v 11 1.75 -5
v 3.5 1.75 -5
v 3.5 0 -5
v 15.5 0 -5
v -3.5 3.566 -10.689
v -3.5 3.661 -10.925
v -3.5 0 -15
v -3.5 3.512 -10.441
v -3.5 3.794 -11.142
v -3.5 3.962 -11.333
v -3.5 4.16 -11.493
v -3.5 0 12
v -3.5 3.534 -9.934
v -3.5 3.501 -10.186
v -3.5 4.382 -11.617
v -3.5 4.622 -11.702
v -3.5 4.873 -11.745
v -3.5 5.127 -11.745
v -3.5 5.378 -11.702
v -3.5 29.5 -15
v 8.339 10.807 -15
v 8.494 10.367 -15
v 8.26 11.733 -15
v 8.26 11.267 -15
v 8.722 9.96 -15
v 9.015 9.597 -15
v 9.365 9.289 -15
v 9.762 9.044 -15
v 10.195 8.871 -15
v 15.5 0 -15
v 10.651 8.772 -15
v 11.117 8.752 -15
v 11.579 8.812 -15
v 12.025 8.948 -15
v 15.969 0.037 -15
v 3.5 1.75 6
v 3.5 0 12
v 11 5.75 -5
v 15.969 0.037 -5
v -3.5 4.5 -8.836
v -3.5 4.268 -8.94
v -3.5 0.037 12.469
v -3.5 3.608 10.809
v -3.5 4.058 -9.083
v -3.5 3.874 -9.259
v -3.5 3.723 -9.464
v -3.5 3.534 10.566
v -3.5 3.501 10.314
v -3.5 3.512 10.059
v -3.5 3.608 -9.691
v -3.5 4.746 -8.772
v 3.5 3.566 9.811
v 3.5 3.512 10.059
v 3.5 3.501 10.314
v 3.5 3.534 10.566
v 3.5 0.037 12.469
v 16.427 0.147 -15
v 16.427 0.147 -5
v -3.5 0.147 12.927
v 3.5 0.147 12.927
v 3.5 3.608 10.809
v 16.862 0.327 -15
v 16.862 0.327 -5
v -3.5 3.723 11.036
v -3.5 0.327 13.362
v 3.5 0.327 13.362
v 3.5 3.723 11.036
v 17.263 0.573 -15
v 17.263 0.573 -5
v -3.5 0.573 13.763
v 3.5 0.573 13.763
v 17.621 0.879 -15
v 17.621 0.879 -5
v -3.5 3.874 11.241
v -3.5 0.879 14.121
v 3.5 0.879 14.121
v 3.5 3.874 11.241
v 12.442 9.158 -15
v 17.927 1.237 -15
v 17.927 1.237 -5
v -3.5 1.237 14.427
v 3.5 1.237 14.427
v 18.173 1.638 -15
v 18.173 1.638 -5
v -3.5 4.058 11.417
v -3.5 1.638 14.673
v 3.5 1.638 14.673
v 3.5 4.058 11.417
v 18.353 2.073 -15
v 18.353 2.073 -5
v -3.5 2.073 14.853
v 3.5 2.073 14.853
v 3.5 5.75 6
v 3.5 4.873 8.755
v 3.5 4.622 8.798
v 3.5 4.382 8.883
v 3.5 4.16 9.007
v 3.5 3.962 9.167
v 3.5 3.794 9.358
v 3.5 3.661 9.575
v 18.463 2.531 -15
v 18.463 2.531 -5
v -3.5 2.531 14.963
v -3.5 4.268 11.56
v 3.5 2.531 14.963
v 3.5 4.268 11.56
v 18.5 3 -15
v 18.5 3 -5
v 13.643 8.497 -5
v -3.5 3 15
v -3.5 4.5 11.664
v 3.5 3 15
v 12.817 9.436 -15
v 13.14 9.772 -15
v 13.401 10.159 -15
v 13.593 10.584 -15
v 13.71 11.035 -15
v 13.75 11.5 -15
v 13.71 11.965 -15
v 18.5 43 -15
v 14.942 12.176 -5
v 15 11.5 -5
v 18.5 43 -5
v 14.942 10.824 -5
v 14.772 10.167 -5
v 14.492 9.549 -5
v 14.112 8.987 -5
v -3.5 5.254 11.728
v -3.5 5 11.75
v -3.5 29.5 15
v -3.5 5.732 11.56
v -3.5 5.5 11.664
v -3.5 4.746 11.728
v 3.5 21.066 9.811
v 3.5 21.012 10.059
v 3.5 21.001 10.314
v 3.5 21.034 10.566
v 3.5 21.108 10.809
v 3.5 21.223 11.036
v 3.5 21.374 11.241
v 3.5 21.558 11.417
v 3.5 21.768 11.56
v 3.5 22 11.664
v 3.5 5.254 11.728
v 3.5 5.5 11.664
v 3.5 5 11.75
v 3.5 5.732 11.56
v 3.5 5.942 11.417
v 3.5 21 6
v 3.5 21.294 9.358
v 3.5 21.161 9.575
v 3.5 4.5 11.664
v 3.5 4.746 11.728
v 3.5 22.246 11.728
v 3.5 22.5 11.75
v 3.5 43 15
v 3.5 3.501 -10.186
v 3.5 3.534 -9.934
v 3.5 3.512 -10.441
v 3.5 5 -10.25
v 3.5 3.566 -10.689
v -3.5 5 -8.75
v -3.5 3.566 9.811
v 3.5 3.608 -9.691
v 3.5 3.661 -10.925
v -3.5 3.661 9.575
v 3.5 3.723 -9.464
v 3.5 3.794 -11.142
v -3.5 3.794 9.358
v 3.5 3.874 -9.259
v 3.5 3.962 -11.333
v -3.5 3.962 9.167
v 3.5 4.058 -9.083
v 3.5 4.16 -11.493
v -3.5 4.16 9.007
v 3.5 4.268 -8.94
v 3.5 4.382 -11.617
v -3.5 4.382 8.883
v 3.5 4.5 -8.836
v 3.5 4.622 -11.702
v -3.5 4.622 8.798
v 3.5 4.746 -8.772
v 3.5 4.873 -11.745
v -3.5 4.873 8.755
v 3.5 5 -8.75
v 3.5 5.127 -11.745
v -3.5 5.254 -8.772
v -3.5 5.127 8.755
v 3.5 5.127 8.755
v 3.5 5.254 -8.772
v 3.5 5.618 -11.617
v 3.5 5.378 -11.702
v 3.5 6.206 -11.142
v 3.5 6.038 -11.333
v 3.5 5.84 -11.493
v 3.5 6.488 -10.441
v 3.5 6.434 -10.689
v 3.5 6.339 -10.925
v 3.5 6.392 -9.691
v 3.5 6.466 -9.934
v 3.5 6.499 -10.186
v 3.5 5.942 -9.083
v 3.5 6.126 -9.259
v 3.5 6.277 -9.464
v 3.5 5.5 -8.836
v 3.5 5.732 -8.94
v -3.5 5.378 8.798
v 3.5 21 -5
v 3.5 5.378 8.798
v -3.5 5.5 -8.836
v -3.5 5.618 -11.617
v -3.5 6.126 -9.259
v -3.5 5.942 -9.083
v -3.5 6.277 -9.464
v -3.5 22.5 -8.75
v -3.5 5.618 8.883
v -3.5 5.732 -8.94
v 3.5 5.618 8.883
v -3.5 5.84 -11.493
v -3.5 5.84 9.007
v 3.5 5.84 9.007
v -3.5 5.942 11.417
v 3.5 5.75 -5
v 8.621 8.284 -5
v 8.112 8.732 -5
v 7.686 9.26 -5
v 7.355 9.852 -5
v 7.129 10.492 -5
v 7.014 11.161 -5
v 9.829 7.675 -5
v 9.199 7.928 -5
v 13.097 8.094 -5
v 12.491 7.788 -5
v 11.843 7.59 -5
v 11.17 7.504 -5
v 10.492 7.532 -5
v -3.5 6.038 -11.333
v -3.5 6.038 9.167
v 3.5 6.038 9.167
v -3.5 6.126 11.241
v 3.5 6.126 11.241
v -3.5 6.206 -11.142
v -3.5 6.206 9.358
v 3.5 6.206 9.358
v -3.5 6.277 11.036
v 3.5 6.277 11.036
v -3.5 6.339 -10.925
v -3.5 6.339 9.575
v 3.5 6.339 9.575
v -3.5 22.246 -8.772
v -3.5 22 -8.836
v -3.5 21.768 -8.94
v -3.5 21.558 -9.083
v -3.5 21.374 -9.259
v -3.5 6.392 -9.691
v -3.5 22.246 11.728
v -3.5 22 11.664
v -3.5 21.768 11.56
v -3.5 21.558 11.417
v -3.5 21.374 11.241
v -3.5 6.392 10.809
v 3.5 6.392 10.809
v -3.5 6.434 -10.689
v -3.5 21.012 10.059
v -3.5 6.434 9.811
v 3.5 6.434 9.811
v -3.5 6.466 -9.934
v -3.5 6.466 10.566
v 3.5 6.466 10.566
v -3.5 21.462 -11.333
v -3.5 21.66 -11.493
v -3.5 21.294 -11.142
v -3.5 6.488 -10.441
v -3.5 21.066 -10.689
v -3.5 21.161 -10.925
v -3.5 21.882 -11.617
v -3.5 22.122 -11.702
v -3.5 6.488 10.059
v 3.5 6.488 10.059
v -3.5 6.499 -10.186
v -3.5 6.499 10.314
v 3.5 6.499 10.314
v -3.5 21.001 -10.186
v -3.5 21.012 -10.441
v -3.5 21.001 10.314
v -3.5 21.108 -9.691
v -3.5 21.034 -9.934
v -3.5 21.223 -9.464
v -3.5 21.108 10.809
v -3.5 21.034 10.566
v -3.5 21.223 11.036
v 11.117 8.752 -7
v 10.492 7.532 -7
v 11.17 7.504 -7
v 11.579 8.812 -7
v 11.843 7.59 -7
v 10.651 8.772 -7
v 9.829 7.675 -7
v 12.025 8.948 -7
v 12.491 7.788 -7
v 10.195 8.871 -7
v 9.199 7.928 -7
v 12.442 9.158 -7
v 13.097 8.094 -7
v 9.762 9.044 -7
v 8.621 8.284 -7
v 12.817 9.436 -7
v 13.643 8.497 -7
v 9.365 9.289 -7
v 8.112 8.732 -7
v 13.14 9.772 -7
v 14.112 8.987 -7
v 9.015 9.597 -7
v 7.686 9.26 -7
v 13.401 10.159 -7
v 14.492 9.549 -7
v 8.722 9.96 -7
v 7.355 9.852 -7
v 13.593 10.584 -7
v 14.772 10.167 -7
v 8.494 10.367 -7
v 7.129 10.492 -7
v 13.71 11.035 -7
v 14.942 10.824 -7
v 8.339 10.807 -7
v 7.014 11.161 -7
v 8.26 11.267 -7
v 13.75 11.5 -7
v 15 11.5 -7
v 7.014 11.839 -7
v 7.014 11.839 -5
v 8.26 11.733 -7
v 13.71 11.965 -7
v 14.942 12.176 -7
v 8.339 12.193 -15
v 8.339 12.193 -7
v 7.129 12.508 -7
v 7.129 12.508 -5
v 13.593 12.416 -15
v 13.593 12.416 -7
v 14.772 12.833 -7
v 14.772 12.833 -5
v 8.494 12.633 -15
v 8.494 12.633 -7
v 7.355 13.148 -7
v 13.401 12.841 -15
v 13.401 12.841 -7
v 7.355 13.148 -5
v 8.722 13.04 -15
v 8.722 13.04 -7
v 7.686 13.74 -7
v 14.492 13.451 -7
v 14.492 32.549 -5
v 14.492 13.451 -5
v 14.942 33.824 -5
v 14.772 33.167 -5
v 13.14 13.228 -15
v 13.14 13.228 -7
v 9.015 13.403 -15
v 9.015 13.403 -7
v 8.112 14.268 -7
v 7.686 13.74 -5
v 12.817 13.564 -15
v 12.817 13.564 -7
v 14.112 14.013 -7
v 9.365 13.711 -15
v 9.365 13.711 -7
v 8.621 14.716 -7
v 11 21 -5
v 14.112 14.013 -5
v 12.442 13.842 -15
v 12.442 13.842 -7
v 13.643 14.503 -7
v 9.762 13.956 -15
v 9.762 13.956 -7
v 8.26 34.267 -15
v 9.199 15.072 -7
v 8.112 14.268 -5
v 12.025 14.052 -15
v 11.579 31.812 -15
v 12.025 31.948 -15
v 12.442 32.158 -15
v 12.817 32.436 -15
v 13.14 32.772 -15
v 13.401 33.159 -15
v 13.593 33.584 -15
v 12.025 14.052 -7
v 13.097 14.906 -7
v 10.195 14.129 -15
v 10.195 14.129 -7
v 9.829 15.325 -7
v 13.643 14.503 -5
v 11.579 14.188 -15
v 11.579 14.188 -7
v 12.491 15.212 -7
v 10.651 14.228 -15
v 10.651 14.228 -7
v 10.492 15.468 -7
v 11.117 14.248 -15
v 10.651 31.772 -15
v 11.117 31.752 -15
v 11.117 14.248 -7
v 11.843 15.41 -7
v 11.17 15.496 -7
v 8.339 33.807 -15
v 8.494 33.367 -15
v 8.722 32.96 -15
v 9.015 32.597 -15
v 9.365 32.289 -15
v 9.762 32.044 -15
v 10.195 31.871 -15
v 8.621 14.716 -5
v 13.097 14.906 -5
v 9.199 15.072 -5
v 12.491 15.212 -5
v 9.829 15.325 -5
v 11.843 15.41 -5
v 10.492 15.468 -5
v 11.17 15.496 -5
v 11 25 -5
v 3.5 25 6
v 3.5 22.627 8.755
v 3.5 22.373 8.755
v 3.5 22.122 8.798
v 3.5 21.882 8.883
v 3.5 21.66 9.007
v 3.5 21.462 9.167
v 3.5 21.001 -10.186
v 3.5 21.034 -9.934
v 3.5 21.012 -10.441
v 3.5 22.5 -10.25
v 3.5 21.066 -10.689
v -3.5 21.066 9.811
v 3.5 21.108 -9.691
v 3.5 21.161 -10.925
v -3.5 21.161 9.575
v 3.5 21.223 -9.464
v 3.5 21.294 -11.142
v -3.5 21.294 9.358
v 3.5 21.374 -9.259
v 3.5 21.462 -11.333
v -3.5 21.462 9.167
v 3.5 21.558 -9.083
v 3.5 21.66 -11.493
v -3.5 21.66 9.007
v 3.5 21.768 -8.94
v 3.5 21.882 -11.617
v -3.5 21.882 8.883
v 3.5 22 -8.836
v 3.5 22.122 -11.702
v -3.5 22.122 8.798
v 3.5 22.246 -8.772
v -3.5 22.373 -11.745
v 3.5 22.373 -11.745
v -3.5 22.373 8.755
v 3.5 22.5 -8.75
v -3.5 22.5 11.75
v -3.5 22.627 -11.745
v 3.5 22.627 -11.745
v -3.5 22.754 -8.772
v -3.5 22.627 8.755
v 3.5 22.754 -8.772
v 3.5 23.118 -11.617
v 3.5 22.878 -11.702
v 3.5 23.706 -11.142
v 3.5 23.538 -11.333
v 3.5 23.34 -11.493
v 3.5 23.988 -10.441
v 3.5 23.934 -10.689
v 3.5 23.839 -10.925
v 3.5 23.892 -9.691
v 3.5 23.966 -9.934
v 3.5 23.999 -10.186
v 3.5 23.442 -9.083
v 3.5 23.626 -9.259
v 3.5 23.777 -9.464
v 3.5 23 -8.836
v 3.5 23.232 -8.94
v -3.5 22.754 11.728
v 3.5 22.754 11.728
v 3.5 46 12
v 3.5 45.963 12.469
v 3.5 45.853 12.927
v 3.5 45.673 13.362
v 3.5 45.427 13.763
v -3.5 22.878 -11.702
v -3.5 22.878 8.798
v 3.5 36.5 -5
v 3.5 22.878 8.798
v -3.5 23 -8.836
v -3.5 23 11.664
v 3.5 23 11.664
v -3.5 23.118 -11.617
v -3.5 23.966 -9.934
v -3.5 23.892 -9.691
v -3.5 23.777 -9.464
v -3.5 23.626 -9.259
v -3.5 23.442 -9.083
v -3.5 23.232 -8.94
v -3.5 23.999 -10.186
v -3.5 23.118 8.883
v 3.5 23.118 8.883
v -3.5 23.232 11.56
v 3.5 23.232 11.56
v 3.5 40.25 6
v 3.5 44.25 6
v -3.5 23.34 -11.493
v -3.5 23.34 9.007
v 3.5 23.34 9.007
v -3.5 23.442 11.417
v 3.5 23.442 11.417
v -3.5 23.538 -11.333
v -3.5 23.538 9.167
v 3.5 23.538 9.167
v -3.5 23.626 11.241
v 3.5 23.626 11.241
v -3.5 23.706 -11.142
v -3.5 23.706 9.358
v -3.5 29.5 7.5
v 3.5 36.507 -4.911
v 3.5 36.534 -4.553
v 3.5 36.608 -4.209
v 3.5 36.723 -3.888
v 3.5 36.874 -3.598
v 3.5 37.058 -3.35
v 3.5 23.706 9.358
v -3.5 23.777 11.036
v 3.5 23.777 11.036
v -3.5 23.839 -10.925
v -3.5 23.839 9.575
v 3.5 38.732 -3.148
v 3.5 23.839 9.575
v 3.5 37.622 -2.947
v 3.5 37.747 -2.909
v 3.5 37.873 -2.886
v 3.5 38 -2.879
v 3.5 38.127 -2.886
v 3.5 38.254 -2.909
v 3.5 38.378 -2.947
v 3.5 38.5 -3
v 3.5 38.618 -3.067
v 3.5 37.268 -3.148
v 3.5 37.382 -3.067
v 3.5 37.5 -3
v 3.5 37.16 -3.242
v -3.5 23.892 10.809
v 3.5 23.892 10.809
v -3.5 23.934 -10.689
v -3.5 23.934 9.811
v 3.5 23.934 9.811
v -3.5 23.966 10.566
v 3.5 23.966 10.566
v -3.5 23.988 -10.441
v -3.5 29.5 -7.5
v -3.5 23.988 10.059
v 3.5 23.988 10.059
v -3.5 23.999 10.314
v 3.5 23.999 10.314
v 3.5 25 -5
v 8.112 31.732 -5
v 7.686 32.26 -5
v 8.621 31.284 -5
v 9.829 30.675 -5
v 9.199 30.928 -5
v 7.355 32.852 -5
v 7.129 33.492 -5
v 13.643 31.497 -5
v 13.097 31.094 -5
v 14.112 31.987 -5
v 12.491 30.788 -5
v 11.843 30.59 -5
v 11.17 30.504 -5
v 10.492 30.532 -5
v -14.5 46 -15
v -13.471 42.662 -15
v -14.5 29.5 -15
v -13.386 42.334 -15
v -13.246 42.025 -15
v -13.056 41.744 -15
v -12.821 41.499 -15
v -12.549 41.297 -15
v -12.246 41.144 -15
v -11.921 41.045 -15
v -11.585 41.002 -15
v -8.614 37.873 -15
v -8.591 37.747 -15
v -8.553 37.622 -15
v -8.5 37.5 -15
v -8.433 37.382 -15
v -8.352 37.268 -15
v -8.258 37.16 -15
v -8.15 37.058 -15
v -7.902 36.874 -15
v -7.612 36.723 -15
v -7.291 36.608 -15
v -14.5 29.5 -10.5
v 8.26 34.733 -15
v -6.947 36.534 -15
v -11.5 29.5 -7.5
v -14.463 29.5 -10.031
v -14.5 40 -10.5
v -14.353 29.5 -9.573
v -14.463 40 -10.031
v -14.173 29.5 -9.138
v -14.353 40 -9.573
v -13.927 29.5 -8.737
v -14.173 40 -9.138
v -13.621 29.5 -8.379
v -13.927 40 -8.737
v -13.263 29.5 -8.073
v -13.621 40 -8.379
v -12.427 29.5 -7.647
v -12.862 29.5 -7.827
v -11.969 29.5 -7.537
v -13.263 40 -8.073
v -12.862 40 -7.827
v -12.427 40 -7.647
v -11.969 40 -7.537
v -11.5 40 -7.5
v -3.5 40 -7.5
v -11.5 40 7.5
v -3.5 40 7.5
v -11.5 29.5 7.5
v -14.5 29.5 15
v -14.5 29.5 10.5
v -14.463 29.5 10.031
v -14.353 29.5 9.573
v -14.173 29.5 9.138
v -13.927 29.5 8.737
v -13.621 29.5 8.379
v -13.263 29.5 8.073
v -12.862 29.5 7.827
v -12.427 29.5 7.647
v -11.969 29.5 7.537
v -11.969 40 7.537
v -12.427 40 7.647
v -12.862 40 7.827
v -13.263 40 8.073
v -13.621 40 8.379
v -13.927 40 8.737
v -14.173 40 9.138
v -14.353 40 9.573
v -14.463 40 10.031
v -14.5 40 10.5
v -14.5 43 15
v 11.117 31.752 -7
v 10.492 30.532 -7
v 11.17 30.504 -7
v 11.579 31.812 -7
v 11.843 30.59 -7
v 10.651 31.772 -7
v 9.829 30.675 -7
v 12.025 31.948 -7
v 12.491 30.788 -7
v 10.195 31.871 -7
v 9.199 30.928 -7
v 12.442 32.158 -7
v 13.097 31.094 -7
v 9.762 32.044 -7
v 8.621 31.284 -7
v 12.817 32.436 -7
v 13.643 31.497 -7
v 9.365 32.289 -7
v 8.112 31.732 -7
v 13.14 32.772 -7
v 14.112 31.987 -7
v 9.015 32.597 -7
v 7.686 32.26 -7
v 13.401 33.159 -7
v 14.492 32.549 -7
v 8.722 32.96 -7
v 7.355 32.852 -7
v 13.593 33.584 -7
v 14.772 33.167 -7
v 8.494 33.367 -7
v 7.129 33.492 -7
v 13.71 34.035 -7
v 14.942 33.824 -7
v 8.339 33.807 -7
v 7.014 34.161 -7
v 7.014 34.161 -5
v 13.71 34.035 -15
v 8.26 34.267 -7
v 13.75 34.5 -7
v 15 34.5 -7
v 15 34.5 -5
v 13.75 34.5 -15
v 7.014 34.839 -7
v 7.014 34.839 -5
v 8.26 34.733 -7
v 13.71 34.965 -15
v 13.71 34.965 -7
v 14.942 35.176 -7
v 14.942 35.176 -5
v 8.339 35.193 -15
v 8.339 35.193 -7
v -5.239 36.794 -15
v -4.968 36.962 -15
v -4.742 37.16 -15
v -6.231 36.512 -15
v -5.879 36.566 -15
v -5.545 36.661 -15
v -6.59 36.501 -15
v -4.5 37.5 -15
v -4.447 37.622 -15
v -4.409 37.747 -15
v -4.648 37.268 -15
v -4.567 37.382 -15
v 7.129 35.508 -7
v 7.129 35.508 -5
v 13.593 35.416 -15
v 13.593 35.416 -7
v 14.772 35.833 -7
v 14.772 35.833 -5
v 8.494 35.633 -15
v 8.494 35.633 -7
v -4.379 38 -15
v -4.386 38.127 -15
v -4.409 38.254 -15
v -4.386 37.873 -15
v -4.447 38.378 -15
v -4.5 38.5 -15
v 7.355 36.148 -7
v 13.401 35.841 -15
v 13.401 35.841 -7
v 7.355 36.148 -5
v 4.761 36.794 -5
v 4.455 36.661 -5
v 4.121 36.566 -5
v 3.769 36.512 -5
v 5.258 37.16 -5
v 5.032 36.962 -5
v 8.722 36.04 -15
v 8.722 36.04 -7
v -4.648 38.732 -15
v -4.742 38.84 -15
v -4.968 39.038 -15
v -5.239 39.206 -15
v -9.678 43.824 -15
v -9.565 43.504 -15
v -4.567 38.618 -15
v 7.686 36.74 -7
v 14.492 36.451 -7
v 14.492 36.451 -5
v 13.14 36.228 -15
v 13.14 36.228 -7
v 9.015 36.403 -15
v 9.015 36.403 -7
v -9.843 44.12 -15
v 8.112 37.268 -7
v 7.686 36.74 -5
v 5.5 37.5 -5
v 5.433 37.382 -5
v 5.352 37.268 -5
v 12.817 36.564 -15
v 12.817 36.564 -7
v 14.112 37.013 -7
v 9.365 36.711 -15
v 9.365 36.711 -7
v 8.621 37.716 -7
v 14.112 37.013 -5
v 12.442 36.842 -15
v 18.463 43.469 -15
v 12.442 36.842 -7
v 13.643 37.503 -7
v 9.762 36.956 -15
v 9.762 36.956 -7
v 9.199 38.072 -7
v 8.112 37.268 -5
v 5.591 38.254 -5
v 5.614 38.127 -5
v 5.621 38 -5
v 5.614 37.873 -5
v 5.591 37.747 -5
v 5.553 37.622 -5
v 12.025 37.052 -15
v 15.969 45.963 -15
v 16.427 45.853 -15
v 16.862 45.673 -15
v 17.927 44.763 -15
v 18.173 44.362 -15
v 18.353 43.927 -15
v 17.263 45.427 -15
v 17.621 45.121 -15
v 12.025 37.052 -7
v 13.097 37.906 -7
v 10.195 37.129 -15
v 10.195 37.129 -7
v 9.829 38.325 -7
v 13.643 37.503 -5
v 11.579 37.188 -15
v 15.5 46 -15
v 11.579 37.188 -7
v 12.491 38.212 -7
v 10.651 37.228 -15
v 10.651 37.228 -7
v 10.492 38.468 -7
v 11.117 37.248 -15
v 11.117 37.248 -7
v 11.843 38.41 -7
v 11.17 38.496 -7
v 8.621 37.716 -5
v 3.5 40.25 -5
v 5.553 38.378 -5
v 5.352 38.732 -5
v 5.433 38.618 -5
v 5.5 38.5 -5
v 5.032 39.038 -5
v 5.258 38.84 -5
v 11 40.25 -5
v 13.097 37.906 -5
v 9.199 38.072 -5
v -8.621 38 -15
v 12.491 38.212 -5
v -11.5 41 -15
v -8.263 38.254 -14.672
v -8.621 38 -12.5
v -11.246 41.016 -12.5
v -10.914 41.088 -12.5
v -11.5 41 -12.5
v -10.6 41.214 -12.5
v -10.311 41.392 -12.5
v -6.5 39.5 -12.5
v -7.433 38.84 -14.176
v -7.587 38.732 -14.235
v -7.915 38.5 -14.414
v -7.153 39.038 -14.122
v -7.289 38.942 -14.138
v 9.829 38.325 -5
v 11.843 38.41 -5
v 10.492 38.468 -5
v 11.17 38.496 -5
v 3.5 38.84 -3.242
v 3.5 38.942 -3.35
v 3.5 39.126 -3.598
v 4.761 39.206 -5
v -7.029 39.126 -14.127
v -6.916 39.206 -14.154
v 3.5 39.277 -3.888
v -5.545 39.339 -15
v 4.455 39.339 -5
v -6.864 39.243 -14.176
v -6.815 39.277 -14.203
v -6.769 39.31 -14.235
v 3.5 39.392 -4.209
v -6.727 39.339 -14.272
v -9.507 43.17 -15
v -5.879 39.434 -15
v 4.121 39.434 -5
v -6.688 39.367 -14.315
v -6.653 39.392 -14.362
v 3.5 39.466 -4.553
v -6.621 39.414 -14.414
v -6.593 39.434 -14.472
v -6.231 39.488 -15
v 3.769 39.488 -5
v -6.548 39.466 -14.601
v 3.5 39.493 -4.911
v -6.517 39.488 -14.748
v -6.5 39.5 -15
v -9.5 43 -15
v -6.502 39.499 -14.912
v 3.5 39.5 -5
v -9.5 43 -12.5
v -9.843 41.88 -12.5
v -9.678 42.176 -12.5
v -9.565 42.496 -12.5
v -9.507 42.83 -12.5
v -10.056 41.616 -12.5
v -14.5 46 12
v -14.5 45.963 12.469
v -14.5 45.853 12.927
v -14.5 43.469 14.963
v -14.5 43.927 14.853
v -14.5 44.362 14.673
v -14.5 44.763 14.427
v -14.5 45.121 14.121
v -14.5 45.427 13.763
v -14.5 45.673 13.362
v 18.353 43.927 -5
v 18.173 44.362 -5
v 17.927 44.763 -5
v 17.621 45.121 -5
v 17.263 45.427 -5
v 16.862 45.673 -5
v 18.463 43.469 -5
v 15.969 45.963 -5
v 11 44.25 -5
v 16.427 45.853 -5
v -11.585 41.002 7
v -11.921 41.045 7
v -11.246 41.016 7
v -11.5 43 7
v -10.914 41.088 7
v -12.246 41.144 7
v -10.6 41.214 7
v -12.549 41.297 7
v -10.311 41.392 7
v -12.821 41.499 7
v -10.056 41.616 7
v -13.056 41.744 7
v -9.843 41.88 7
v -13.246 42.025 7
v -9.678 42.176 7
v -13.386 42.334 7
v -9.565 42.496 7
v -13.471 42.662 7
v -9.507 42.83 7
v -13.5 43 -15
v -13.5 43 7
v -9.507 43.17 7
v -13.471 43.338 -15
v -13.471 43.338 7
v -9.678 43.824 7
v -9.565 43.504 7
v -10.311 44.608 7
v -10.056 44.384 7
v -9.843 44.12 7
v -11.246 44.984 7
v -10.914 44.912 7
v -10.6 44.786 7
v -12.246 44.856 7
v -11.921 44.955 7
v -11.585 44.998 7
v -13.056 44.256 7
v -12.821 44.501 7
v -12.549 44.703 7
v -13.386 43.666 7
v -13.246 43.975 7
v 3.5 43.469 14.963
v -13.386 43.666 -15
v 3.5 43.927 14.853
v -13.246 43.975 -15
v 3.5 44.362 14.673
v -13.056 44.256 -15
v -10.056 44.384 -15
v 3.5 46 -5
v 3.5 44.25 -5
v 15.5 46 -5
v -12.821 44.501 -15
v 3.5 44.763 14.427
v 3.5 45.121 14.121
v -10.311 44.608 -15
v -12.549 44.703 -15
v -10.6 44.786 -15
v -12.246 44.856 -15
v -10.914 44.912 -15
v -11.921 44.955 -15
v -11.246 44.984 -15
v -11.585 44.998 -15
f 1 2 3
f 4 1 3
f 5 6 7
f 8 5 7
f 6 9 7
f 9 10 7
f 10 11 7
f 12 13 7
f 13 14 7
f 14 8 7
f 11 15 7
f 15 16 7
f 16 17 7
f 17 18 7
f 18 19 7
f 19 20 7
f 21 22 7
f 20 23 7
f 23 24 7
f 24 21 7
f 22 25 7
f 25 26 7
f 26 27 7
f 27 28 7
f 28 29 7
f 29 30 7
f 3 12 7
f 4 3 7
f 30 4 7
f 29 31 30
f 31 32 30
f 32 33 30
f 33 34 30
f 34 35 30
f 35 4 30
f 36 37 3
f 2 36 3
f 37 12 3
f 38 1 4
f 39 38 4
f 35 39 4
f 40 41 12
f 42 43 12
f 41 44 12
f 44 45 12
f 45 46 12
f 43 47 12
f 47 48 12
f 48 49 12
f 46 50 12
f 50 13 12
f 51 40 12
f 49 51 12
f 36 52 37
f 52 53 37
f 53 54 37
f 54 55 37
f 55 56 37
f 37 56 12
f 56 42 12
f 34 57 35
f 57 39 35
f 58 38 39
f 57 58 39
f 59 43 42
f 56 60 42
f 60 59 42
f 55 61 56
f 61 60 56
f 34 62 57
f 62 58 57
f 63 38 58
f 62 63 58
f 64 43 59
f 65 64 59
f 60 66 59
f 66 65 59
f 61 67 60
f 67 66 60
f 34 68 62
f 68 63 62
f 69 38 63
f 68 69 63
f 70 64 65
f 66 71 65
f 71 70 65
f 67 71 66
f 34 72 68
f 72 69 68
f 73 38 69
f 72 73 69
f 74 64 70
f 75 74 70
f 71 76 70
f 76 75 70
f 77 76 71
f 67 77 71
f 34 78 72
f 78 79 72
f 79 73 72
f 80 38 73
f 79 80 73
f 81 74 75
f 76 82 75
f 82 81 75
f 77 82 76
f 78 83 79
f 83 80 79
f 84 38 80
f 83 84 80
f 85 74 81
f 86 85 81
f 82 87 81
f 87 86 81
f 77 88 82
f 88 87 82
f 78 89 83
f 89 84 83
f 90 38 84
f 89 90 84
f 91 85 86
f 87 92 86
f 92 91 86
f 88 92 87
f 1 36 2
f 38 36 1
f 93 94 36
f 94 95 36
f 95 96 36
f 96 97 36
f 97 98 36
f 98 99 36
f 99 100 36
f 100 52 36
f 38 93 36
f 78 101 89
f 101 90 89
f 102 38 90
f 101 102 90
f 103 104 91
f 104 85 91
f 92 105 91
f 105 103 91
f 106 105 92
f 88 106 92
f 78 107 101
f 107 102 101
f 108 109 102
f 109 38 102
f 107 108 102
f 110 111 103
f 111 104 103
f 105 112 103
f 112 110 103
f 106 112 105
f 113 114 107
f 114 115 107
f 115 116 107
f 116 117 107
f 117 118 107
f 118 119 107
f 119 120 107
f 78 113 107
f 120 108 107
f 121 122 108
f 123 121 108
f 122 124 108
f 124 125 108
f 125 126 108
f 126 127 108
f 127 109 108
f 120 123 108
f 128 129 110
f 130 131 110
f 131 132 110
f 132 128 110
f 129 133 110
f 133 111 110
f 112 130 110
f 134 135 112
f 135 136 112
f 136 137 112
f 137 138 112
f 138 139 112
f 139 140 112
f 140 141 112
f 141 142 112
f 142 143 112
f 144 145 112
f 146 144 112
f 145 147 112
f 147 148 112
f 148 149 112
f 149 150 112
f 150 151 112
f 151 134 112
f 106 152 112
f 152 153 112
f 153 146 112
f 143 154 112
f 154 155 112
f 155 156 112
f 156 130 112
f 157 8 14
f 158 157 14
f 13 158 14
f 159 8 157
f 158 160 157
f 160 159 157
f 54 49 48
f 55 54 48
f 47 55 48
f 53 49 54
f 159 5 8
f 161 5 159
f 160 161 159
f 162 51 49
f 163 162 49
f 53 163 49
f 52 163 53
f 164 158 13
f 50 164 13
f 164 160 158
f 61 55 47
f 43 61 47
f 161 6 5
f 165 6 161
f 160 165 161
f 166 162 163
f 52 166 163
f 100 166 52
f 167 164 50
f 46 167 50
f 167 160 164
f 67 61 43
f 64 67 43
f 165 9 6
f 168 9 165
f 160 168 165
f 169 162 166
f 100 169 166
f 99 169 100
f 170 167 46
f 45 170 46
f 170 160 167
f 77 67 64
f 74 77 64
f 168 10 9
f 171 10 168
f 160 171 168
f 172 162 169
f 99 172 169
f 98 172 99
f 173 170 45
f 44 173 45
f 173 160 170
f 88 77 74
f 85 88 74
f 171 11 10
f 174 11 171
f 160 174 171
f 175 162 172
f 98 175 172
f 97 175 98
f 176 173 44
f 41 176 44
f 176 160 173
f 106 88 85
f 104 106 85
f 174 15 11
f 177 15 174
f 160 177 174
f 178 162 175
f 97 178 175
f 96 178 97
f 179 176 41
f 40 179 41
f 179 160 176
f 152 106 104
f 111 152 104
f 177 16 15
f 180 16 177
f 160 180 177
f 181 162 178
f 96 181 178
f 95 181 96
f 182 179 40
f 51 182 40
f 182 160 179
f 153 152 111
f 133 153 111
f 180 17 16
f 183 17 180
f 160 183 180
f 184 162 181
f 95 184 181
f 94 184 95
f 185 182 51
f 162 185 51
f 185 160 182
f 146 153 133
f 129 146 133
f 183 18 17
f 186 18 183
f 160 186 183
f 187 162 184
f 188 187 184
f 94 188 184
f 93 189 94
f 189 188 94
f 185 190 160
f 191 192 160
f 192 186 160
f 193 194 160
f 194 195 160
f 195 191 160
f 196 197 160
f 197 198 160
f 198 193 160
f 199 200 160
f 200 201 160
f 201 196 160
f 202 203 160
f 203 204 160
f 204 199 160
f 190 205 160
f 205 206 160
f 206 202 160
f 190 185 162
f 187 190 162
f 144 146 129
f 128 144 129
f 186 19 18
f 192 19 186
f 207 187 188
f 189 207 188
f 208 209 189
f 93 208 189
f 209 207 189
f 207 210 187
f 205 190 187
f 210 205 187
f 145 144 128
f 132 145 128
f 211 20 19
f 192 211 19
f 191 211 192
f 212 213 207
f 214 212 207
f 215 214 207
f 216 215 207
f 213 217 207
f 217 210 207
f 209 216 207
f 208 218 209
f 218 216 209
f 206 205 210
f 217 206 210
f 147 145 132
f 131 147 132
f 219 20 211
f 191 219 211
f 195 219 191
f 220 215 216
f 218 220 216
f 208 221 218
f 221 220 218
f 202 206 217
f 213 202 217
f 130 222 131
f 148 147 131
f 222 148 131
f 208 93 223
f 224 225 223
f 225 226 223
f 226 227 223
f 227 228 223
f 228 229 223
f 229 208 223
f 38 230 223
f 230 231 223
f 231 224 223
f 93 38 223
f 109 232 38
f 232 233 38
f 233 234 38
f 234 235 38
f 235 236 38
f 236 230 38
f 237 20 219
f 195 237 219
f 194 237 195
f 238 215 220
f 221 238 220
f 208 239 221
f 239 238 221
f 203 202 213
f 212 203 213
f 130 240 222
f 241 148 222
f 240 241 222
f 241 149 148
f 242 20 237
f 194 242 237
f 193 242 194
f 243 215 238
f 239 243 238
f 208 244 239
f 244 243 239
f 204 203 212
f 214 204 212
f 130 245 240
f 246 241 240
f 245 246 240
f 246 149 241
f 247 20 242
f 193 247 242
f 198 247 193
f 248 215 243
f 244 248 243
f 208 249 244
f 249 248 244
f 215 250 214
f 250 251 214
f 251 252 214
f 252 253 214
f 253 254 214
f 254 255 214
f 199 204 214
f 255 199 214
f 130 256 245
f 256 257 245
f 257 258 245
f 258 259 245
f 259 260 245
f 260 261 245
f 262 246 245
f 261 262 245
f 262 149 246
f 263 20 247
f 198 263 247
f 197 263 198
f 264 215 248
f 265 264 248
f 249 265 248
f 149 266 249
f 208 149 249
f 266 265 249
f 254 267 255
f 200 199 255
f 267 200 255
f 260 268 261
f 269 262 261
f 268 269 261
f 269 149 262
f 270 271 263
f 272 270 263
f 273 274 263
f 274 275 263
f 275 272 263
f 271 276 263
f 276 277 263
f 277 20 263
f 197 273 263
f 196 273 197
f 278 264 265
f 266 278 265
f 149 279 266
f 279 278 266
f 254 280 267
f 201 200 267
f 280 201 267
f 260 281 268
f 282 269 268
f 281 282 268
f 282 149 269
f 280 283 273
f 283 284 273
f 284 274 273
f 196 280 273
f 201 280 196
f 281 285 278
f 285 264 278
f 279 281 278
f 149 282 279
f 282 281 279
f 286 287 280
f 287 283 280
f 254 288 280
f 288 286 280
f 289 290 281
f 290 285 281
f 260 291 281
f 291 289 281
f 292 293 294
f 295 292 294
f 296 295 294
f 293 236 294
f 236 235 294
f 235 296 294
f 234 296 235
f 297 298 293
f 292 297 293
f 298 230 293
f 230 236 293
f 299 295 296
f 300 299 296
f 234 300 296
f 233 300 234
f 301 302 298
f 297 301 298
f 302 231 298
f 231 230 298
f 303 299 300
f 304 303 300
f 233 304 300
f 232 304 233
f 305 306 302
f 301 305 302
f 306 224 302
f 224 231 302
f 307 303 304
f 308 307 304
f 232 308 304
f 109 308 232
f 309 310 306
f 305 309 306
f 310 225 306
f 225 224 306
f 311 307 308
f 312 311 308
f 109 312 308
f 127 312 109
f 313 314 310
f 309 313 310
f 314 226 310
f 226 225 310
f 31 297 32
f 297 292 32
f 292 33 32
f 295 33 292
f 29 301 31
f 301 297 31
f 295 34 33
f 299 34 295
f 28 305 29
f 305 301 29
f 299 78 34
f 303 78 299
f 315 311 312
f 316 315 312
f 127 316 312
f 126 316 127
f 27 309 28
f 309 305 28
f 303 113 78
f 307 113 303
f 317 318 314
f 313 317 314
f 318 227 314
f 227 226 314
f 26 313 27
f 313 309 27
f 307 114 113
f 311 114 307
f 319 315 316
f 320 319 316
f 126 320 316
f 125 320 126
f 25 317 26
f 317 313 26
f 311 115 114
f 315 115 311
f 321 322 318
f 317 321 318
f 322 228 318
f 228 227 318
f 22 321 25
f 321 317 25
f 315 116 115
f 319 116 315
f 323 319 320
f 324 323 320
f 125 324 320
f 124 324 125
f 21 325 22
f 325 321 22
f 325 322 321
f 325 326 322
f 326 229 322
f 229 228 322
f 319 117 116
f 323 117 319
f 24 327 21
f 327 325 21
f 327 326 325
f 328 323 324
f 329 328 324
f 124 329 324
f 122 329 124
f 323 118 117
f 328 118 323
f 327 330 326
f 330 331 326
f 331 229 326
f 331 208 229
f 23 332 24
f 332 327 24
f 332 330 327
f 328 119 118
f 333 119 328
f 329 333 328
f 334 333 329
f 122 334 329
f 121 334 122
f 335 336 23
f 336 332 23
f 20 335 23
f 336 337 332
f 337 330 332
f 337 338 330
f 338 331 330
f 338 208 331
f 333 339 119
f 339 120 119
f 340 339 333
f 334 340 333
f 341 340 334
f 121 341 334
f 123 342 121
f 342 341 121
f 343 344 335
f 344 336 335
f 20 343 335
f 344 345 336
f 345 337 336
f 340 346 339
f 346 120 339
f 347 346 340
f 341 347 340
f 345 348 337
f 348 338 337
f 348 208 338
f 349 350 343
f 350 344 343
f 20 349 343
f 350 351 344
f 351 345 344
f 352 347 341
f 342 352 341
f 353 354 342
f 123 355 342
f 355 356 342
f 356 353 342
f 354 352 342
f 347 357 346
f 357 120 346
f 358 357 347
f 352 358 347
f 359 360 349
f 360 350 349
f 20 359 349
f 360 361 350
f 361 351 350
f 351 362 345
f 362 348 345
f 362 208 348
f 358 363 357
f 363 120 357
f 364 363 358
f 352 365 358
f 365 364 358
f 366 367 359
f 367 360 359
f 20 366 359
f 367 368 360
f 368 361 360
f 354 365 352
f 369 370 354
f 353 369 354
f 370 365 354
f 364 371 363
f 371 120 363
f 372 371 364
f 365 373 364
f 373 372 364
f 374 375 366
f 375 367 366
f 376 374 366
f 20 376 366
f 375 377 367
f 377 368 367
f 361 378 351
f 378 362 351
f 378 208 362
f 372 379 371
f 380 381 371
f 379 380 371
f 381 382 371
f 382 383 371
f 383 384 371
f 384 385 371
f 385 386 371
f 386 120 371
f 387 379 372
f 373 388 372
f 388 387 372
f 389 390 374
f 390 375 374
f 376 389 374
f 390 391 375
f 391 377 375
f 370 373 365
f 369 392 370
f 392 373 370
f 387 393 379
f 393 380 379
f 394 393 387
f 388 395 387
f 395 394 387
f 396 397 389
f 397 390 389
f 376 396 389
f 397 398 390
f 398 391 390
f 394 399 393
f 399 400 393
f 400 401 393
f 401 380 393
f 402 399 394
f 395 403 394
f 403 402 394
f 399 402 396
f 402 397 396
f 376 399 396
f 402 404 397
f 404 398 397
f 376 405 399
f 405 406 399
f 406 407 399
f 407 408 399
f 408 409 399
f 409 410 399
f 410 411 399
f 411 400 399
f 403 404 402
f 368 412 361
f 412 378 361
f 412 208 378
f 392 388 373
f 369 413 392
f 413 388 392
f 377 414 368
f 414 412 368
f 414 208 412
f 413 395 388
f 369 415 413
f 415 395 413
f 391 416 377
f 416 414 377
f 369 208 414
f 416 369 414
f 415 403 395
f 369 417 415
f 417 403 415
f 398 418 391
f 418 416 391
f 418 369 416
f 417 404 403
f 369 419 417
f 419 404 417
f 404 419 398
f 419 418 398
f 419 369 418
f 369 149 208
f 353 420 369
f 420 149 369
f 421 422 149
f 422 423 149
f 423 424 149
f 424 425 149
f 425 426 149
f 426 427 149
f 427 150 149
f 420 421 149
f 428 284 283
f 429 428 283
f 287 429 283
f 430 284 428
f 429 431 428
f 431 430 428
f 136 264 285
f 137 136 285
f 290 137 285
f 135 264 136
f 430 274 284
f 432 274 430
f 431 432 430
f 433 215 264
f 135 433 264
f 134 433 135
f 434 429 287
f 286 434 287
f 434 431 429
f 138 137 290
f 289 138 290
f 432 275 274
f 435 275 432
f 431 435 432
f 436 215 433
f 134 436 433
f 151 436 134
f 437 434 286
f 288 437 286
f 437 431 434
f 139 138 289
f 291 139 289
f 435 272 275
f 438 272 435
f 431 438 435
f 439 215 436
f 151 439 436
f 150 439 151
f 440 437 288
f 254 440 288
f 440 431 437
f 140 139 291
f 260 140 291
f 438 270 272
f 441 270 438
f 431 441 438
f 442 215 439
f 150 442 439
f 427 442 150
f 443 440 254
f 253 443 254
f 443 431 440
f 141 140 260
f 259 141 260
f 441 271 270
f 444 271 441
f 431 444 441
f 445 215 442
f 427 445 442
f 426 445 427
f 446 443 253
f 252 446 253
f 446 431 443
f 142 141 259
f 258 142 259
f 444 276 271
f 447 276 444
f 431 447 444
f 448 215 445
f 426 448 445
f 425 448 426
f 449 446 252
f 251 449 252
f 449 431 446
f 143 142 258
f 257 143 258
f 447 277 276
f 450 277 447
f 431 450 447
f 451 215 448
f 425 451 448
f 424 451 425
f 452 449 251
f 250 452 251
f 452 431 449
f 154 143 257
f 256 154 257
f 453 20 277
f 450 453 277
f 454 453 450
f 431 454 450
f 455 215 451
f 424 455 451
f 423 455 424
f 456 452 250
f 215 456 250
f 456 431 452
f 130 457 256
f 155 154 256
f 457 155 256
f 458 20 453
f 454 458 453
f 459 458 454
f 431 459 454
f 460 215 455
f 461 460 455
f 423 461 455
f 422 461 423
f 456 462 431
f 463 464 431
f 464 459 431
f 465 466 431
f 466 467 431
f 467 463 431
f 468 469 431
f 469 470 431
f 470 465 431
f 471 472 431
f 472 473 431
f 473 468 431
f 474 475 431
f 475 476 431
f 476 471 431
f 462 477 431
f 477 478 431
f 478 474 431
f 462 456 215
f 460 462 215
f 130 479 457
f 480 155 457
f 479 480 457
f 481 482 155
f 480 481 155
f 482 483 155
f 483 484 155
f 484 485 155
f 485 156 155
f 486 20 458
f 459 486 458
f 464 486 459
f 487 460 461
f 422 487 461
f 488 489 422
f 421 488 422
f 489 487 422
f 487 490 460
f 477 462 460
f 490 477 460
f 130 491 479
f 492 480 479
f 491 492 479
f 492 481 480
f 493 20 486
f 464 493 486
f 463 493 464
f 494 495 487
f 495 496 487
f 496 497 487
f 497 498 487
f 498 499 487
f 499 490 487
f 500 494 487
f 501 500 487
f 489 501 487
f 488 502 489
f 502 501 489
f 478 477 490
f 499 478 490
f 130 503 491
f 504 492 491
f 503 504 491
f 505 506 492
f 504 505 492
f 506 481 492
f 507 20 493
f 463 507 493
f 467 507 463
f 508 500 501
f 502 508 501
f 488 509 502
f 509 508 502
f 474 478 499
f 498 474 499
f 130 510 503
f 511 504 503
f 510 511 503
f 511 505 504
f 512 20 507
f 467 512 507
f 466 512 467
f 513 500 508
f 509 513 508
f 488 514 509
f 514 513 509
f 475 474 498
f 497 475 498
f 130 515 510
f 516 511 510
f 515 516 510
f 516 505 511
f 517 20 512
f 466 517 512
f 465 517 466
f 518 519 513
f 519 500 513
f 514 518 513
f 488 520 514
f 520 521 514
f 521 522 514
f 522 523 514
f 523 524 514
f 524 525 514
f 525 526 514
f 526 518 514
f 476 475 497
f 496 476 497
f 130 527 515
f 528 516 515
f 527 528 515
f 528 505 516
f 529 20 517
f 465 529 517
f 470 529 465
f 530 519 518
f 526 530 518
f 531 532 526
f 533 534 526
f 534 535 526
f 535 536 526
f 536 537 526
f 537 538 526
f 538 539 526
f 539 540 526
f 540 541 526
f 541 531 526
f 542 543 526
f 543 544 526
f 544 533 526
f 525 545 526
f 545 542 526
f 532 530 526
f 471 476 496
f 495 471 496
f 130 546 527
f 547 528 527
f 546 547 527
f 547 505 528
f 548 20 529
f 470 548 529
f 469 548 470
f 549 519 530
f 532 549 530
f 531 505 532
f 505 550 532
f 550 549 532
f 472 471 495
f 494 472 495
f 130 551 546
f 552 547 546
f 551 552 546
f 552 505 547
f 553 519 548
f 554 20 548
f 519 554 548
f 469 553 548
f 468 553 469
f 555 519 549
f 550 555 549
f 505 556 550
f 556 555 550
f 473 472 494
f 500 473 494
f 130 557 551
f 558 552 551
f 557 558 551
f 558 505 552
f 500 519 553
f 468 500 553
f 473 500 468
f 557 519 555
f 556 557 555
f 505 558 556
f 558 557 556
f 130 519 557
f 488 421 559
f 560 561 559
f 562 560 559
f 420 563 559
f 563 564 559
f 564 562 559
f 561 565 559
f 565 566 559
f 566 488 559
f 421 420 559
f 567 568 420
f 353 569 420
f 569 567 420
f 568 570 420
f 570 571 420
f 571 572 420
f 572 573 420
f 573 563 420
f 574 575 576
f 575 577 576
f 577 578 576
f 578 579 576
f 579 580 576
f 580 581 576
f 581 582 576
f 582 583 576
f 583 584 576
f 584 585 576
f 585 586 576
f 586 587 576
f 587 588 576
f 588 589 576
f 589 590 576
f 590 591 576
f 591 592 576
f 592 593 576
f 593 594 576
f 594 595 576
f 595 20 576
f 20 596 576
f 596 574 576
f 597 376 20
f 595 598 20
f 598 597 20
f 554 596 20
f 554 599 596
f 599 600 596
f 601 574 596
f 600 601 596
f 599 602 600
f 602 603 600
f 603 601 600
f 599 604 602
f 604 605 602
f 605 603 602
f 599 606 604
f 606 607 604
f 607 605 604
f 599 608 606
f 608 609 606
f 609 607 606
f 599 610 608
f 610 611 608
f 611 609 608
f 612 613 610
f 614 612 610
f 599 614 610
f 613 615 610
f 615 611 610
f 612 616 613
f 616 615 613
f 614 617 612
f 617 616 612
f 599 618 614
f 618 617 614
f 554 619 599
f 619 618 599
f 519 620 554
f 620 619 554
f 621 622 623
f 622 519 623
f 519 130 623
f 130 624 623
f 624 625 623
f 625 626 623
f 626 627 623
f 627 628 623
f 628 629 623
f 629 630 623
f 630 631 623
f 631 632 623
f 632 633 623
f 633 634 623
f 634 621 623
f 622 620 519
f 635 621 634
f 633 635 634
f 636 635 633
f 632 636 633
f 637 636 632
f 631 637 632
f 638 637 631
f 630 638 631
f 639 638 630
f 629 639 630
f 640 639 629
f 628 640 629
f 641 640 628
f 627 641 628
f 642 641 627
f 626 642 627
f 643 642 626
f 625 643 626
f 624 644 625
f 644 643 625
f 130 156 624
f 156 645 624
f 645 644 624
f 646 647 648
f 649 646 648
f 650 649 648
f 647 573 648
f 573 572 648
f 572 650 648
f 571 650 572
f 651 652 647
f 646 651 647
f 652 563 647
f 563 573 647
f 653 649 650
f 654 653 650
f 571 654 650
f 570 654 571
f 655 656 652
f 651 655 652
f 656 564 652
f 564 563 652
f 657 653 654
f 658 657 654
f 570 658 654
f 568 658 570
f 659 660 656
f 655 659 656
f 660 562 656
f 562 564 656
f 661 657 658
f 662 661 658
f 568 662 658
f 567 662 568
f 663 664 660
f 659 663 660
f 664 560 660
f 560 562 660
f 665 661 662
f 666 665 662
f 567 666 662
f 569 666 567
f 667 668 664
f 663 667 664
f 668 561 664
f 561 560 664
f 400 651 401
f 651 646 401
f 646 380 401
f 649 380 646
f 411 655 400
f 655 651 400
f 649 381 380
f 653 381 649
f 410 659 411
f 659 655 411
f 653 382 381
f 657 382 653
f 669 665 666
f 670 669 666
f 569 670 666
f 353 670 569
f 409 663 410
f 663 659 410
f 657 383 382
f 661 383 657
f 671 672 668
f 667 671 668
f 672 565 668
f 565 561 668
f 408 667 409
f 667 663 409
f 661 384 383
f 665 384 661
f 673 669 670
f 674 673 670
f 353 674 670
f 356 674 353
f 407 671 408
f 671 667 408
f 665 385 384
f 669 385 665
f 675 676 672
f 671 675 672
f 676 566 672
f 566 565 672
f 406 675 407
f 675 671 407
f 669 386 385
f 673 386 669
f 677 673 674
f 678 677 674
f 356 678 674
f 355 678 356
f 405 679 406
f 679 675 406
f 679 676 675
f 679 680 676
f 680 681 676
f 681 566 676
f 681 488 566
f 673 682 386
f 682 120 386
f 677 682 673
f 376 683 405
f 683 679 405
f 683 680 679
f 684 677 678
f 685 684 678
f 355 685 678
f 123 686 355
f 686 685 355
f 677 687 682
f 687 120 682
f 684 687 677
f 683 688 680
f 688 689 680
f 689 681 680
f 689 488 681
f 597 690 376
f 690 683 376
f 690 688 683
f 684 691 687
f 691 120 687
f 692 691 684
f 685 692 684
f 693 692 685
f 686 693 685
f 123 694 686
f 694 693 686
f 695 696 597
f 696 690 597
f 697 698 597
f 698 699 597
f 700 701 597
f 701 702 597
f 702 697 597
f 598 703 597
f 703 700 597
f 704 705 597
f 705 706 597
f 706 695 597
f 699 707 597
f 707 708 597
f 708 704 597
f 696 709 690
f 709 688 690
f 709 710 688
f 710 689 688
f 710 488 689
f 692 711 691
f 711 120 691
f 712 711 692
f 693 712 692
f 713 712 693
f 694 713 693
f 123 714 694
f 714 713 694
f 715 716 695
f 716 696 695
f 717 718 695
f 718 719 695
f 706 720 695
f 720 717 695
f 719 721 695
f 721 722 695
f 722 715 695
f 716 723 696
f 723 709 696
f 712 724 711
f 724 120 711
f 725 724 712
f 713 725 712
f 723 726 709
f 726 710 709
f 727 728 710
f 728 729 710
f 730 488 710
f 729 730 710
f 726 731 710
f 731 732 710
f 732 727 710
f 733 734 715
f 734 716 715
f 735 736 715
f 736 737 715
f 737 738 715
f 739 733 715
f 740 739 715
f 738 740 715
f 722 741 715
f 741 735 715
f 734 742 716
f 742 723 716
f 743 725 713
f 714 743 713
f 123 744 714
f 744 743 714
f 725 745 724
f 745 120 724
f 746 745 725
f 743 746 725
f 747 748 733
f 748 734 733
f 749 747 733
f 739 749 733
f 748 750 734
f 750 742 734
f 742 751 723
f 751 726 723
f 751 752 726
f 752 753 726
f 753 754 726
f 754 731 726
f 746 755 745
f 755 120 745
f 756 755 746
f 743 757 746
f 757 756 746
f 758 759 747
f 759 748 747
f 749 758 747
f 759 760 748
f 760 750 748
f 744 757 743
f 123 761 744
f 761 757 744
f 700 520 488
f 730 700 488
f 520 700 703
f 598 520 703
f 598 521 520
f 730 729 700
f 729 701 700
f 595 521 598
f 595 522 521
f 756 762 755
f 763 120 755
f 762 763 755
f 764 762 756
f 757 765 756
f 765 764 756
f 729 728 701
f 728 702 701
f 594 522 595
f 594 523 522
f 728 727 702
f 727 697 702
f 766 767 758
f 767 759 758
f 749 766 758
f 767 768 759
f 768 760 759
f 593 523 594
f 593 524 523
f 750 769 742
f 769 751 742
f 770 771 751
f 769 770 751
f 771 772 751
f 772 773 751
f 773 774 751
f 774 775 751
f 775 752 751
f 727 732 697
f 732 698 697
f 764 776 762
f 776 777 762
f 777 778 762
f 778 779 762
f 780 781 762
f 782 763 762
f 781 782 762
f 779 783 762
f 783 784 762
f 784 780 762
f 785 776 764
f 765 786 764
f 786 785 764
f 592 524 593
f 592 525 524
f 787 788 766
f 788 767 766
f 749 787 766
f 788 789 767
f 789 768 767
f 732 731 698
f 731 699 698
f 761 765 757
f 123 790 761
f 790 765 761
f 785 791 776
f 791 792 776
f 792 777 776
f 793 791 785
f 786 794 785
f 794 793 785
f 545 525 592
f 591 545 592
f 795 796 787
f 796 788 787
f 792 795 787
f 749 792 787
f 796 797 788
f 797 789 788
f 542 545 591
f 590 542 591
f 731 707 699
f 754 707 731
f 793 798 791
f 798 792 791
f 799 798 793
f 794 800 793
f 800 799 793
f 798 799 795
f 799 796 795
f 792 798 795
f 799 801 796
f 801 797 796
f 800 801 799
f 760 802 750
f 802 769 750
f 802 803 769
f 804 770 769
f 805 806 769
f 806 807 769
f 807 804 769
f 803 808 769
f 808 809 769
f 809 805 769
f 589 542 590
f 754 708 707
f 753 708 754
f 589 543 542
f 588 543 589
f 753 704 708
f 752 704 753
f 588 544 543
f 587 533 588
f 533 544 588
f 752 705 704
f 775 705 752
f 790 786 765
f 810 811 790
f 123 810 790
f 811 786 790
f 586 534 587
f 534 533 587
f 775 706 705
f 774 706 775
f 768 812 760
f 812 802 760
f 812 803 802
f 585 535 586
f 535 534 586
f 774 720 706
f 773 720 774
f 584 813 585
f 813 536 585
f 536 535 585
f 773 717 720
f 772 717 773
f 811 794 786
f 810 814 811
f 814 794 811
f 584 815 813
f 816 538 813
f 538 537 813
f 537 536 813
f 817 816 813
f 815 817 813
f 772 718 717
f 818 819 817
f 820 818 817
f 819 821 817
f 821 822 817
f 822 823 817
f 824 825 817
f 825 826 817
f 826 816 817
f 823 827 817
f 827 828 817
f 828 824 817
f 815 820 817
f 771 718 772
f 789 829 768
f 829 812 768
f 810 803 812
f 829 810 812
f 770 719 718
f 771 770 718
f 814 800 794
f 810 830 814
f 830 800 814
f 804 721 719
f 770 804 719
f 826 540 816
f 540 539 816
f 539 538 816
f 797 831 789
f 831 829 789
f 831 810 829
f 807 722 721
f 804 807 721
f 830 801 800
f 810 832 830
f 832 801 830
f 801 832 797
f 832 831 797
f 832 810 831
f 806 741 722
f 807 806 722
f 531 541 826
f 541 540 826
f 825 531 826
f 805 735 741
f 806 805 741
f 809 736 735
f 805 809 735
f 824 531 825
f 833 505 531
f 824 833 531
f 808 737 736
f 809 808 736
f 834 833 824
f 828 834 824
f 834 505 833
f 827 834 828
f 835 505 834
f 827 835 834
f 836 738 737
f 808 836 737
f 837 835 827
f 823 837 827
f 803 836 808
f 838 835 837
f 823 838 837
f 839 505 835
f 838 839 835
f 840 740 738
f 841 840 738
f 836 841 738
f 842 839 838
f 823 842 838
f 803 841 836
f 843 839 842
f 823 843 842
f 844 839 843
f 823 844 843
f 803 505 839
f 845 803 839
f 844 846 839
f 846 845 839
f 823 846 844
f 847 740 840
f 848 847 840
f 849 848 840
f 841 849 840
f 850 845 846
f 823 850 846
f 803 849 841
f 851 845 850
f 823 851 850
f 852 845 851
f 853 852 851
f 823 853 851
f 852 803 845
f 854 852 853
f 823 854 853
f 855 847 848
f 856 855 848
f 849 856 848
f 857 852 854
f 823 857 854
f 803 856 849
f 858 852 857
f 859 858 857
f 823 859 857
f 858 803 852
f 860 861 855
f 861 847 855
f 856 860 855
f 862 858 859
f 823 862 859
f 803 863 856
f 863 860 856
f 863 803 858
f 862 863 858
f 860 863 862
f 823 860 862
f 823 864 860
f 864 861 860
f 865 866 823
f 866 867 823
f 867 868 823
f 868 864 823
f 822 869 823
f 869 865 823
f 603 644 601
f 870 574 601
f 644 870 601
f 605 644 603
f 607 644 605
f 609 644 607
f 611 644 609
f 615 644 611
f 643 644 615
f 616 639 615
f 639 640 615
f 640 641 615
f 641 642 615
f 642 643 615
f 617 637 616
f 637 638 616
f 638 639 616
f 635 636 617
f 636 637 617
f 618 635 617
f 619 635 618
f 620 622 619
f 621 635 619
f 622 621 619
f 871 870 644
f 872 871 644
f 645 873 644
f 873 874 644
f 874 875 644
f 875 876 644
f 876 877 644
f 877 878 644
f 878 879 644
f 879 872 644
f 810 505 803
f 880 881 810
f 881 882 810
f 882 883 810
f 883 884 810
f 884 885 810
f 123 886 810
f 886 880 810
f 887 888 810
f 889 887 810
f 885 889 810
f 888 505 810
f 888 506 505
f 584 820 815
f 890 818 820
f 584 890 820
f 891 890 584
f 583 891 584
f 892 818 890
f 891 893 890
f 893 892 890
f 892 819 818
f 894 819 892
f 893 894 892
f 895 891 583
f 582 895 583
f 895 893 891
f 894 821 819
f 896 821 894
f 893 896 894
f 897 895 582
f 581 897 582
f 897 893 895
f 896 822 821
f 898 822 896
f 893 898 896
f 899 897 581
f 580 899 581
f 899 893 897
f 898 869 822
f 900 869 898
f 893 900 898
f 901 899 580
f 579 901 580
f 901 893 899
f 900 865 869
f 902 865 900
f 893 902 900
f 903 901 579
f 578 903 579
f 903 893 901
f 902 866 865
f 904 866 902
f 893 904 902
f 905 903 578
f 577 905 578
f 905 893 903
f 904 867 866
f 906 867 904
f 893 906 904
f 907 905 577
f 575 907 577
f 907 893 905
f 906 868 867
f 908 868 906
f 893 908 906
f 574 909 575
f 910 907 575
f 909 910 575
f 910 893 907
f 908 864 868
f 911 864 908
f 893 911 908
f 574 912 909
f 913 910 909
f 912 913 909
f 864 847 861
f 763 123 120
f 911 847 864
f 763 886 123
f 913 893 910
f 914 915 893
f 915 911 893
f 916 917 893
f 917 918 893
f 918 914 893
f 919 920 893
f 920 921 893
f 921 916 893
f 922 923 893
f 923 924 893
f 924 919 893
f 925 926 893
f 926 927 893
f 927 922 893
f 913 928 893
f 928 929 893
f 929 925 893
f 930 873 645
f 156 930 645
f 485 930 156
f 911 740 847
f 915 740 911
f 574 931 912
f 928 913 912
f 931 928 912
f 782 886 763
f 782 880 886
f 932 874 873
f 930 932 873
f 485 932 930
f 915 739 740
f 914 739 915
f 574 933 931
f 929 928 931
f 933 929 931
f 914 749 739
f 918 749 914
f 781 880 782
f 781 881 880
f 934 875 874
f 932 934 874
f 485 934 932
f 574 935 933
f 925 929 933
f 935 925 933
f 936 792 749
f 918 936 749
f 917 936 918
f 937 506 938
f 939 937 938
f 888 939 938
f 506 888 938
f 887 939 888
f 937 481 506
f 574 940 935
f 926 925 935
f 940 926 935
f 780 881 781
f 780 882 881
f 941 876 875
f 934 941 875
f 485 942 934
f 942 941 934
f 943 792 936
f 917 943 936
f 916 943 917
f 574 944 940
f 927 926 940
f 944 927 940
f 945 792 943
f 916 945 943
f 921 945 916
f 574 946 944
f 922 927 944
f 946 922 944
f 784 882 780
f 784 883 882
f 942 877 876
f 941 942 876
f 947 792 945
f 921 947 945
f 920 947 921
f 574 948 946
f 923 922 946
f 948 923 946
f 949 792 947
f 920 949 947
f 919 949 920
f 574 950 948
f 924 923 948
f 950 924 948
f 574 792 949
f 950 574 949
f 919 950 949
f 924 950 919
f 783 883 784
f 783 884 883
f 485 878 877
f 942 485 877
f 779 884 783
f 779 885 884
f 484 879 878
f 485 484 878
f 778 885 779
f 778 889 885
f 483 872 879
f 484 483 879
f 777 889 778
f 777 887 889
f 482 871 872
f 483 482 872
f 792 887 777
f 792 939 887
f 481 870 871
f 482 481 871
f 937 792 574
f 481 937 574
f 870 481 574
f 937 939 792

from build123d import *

# Parameters (mm, degrees)
ESBO_O1_W                = 7
ESBO_O1_H                = 30
RESSALTO_EXTRUS_O1_DEPTH = 46
RESSALTO_EXTRUS_O2_DEPTH = 11
FILETE1_R                = 3
ESBO_O3_R                = 1.5
CORTE_EXTRUS_O1_DEPTH    = 8
ESBO_O4_W                = 10
ESBO_O4_H                = 46
RESSALTO_EXTRUS_O4_DEPTH = 15
ESBO_O5_R                = 2.75
CORTE_EXTRUS_O2_DEPTH    = 11
ESBO_O6_R                = 4
CORTE_EXTRUS_O3_DEPTH    = 2
ESBO_O7_W                = 7.5
ESBO_O7_H                = 4
RESSALTO_EXTRUS_O5_DEPTH = 11
CORTE_EXTRUS_O4_DEPTH    = 45.25
FILETE2_R                = 3
FILETE3_R                = 3
ESBO_O9_R                = 2
CORTE_EXTRUS_O5_DEPTH    = 22
ESBO_O15_R               = 1.5
CORTE_EXTRUS_O6_DEPTH    = 22
CORTE_EXTRUS_O7_DEPTH    = 2.5


with BuildPart() as part:
    # Esboço1 → Ressalto-extrusão1 (new body)
    with BuildSketch(Plane(origin=(0, 0, 0), x_dir=(1, 0, 0), z_dir=(0, 1, 0))):
        Rectangle(ESBO_O1_W, ESBO_O1_H)
    extrude(amount=RESSALTO_EXTRUS_O1_DEPTH)

    # Esboço2 → Ressalto-extrusão2 (add)
    with BuildSketch(Plane.ZY.offset(3.5)):
        Polygon((0, 40), (-7.5, 40), (-7.5, 29.5), (-15, 29.5), (-15, 46), (15, 46), (15, 29.5), (7.5, 29.5), (7.5, 40), align=None)
    extrude(amount=RESSALTO_EXTRUS_O2_DEPTH)

    # Filete1
    filete1_edges = [part.edges().sort_by_distance(p)[0] for p in [
        (-14.5, 34.75, -7.5),
        (-14.5, 34.75, 7.5),
    ]]
    fillet(filete1_edges, radius=FILETE1_R)

    # Esboço3 → Corte-extrusão1 (cut, through all)
    with BuildSketch(Plane.ZY.offset(3.5)):
        with Locations((-10.25, 5)):
            Circle(ESBO_O3_R)
        with Locations((10.25, 5)):
            Circle(ESBO_O3_R)
        with Locations((-10.25, 22.5)):
            Circle(ESBO_O3_R)
        with Locations((10.25, 22.5)):
            Circle(ESBO_O3_R)
    extrude(amount=-CORTE_EXTRUS_O1_DEPTH, mode=Mode.SUBTRACT)

    # Esboço4 → Ressalto-extrusão4 (add)
    with BuildSketch(Plane(origin=(3.5, 0, 0), x_dir=(0, 0, -1), z_dir=(1, 0, 0))):
        with Locations((10, 23)):
            Rectangle(ESBO_O4_W, ESBO_O4_H)
    extrude(amount=RESSALTO_EXTRUS_O4_DEPTH)

    # Esboço5 → Corte-extrusão2 (cut, through all)
    with BuildSketch(Plane.XY.offset(-5)):
        with Locations((11, 11.5)):
            Circle(ESBO_O5_R)
        with Locations((11, 34.5)):
            Circle(ESBO_O5_R)
    extrude(amount=-CORTE_EXTRUS_O2_DEPTH, mode=Mode.SUBTRACT)

    # Esboço6 → Corte-extrusão3 (cut)
    with BuildSketch(Plane.XY.offset(-5)):
        with Locations((11, 11.5)):
            Circle(ESBO_O6_R)
        with Locations((11, 34.5)):
            Circle(ESBO_O6_R)
    extrude(amount=-CORTE_EXTRUS_O3_DEPTH, mode=Mode.SUBTRACT)

    # Esboço7 → Ressalto-extrusão5 (add)
    with BuildSketch(Plane.XY.offset(-5)):
        with Locations((7.25, 3.75)):
            Rectangle(ESBO_O7_W, ESBO_O7_H)
        with Locations((7.25, 23)):
            Rectangle(ESBO_O7_W, ESBO_O7_H)
        with Locations((7.25, 42.25)):
            Rectangle(ESBO_O7_W, ESBO_O7_H)
    extrude(amount=RESSALTO_EXTRUS_O5_DEPTH)

    # Esboço8 → Corte-extrusão4 (cut, through all)
    with BuildSketch(Plane.XZ.offset(-1.75)):
        Polygon((11, -5), (3.5, 6), (11, 6), align=None)
    extrude(amount=-CORTE_EXTRUS_O4_DEPTH, mode=Mode.SUBTRACT)

    # Filete2
    filete2_edges = [part.edges().sort_by_distance(p)[0] for p in [
        (-5.5, 46, 15),
        (0, 0, 15),
    ]]
    fillet(filete2_edges, radius=FILETE2_R)

    # Filete3
    filete3_edges = [part.edges().sort_by_distance(p)[0] for p in [
        (18.5, 46, -10),
        (18.5, 0, -10),
    ]]
    fillet(filete3_edges, radius=FILETE3_R)

    # Esboço9 → Corte-extrusão5 (cut)
    with BuildSketch(Plane(origin=(0, 0, -15), x_dir=(-1, 0, 0), z_dir=(0, 0, -1))):
        with Locations((11.5, 43)):
            Circle(ESBO_O9_R)
    extrude(amount=-CORTE_EXTRUS_O5_DEPTH, mode=Mode.SUBTRACT)

    # Esboço15 → Corte-extrusão6 (cut)
    with BuildSketch(Plane(origin=(-14.75, 0, -14.75), x_dir=(0, -1, 0), z_dir=(-0.707106781, 0, -0.707106781))):
        with Locations((-38, -6.01040764)):
            Circle(ESBO_O15_R)
    extrude(amount=-CORTE_EXTRUS_O6_DEPTH, mode=Mode.SUBTRACT)

    # Esboço16 → Corte-extrusão7 (cut)
    with BuildSketch(Plane(origin=(0, 0, -15), x_dir=(-1, 0, 0), z_dir=(0, 0, -1))):
        Polygon((6.5, 39.5), (9.5, 43), (11.5, 41), (8.621320344, 38), align=None)
    extrude(amount=-CORTE_EXTRUS_O7_DEPTH, mode=Mode.SUBTRACT)


solid = part.part
